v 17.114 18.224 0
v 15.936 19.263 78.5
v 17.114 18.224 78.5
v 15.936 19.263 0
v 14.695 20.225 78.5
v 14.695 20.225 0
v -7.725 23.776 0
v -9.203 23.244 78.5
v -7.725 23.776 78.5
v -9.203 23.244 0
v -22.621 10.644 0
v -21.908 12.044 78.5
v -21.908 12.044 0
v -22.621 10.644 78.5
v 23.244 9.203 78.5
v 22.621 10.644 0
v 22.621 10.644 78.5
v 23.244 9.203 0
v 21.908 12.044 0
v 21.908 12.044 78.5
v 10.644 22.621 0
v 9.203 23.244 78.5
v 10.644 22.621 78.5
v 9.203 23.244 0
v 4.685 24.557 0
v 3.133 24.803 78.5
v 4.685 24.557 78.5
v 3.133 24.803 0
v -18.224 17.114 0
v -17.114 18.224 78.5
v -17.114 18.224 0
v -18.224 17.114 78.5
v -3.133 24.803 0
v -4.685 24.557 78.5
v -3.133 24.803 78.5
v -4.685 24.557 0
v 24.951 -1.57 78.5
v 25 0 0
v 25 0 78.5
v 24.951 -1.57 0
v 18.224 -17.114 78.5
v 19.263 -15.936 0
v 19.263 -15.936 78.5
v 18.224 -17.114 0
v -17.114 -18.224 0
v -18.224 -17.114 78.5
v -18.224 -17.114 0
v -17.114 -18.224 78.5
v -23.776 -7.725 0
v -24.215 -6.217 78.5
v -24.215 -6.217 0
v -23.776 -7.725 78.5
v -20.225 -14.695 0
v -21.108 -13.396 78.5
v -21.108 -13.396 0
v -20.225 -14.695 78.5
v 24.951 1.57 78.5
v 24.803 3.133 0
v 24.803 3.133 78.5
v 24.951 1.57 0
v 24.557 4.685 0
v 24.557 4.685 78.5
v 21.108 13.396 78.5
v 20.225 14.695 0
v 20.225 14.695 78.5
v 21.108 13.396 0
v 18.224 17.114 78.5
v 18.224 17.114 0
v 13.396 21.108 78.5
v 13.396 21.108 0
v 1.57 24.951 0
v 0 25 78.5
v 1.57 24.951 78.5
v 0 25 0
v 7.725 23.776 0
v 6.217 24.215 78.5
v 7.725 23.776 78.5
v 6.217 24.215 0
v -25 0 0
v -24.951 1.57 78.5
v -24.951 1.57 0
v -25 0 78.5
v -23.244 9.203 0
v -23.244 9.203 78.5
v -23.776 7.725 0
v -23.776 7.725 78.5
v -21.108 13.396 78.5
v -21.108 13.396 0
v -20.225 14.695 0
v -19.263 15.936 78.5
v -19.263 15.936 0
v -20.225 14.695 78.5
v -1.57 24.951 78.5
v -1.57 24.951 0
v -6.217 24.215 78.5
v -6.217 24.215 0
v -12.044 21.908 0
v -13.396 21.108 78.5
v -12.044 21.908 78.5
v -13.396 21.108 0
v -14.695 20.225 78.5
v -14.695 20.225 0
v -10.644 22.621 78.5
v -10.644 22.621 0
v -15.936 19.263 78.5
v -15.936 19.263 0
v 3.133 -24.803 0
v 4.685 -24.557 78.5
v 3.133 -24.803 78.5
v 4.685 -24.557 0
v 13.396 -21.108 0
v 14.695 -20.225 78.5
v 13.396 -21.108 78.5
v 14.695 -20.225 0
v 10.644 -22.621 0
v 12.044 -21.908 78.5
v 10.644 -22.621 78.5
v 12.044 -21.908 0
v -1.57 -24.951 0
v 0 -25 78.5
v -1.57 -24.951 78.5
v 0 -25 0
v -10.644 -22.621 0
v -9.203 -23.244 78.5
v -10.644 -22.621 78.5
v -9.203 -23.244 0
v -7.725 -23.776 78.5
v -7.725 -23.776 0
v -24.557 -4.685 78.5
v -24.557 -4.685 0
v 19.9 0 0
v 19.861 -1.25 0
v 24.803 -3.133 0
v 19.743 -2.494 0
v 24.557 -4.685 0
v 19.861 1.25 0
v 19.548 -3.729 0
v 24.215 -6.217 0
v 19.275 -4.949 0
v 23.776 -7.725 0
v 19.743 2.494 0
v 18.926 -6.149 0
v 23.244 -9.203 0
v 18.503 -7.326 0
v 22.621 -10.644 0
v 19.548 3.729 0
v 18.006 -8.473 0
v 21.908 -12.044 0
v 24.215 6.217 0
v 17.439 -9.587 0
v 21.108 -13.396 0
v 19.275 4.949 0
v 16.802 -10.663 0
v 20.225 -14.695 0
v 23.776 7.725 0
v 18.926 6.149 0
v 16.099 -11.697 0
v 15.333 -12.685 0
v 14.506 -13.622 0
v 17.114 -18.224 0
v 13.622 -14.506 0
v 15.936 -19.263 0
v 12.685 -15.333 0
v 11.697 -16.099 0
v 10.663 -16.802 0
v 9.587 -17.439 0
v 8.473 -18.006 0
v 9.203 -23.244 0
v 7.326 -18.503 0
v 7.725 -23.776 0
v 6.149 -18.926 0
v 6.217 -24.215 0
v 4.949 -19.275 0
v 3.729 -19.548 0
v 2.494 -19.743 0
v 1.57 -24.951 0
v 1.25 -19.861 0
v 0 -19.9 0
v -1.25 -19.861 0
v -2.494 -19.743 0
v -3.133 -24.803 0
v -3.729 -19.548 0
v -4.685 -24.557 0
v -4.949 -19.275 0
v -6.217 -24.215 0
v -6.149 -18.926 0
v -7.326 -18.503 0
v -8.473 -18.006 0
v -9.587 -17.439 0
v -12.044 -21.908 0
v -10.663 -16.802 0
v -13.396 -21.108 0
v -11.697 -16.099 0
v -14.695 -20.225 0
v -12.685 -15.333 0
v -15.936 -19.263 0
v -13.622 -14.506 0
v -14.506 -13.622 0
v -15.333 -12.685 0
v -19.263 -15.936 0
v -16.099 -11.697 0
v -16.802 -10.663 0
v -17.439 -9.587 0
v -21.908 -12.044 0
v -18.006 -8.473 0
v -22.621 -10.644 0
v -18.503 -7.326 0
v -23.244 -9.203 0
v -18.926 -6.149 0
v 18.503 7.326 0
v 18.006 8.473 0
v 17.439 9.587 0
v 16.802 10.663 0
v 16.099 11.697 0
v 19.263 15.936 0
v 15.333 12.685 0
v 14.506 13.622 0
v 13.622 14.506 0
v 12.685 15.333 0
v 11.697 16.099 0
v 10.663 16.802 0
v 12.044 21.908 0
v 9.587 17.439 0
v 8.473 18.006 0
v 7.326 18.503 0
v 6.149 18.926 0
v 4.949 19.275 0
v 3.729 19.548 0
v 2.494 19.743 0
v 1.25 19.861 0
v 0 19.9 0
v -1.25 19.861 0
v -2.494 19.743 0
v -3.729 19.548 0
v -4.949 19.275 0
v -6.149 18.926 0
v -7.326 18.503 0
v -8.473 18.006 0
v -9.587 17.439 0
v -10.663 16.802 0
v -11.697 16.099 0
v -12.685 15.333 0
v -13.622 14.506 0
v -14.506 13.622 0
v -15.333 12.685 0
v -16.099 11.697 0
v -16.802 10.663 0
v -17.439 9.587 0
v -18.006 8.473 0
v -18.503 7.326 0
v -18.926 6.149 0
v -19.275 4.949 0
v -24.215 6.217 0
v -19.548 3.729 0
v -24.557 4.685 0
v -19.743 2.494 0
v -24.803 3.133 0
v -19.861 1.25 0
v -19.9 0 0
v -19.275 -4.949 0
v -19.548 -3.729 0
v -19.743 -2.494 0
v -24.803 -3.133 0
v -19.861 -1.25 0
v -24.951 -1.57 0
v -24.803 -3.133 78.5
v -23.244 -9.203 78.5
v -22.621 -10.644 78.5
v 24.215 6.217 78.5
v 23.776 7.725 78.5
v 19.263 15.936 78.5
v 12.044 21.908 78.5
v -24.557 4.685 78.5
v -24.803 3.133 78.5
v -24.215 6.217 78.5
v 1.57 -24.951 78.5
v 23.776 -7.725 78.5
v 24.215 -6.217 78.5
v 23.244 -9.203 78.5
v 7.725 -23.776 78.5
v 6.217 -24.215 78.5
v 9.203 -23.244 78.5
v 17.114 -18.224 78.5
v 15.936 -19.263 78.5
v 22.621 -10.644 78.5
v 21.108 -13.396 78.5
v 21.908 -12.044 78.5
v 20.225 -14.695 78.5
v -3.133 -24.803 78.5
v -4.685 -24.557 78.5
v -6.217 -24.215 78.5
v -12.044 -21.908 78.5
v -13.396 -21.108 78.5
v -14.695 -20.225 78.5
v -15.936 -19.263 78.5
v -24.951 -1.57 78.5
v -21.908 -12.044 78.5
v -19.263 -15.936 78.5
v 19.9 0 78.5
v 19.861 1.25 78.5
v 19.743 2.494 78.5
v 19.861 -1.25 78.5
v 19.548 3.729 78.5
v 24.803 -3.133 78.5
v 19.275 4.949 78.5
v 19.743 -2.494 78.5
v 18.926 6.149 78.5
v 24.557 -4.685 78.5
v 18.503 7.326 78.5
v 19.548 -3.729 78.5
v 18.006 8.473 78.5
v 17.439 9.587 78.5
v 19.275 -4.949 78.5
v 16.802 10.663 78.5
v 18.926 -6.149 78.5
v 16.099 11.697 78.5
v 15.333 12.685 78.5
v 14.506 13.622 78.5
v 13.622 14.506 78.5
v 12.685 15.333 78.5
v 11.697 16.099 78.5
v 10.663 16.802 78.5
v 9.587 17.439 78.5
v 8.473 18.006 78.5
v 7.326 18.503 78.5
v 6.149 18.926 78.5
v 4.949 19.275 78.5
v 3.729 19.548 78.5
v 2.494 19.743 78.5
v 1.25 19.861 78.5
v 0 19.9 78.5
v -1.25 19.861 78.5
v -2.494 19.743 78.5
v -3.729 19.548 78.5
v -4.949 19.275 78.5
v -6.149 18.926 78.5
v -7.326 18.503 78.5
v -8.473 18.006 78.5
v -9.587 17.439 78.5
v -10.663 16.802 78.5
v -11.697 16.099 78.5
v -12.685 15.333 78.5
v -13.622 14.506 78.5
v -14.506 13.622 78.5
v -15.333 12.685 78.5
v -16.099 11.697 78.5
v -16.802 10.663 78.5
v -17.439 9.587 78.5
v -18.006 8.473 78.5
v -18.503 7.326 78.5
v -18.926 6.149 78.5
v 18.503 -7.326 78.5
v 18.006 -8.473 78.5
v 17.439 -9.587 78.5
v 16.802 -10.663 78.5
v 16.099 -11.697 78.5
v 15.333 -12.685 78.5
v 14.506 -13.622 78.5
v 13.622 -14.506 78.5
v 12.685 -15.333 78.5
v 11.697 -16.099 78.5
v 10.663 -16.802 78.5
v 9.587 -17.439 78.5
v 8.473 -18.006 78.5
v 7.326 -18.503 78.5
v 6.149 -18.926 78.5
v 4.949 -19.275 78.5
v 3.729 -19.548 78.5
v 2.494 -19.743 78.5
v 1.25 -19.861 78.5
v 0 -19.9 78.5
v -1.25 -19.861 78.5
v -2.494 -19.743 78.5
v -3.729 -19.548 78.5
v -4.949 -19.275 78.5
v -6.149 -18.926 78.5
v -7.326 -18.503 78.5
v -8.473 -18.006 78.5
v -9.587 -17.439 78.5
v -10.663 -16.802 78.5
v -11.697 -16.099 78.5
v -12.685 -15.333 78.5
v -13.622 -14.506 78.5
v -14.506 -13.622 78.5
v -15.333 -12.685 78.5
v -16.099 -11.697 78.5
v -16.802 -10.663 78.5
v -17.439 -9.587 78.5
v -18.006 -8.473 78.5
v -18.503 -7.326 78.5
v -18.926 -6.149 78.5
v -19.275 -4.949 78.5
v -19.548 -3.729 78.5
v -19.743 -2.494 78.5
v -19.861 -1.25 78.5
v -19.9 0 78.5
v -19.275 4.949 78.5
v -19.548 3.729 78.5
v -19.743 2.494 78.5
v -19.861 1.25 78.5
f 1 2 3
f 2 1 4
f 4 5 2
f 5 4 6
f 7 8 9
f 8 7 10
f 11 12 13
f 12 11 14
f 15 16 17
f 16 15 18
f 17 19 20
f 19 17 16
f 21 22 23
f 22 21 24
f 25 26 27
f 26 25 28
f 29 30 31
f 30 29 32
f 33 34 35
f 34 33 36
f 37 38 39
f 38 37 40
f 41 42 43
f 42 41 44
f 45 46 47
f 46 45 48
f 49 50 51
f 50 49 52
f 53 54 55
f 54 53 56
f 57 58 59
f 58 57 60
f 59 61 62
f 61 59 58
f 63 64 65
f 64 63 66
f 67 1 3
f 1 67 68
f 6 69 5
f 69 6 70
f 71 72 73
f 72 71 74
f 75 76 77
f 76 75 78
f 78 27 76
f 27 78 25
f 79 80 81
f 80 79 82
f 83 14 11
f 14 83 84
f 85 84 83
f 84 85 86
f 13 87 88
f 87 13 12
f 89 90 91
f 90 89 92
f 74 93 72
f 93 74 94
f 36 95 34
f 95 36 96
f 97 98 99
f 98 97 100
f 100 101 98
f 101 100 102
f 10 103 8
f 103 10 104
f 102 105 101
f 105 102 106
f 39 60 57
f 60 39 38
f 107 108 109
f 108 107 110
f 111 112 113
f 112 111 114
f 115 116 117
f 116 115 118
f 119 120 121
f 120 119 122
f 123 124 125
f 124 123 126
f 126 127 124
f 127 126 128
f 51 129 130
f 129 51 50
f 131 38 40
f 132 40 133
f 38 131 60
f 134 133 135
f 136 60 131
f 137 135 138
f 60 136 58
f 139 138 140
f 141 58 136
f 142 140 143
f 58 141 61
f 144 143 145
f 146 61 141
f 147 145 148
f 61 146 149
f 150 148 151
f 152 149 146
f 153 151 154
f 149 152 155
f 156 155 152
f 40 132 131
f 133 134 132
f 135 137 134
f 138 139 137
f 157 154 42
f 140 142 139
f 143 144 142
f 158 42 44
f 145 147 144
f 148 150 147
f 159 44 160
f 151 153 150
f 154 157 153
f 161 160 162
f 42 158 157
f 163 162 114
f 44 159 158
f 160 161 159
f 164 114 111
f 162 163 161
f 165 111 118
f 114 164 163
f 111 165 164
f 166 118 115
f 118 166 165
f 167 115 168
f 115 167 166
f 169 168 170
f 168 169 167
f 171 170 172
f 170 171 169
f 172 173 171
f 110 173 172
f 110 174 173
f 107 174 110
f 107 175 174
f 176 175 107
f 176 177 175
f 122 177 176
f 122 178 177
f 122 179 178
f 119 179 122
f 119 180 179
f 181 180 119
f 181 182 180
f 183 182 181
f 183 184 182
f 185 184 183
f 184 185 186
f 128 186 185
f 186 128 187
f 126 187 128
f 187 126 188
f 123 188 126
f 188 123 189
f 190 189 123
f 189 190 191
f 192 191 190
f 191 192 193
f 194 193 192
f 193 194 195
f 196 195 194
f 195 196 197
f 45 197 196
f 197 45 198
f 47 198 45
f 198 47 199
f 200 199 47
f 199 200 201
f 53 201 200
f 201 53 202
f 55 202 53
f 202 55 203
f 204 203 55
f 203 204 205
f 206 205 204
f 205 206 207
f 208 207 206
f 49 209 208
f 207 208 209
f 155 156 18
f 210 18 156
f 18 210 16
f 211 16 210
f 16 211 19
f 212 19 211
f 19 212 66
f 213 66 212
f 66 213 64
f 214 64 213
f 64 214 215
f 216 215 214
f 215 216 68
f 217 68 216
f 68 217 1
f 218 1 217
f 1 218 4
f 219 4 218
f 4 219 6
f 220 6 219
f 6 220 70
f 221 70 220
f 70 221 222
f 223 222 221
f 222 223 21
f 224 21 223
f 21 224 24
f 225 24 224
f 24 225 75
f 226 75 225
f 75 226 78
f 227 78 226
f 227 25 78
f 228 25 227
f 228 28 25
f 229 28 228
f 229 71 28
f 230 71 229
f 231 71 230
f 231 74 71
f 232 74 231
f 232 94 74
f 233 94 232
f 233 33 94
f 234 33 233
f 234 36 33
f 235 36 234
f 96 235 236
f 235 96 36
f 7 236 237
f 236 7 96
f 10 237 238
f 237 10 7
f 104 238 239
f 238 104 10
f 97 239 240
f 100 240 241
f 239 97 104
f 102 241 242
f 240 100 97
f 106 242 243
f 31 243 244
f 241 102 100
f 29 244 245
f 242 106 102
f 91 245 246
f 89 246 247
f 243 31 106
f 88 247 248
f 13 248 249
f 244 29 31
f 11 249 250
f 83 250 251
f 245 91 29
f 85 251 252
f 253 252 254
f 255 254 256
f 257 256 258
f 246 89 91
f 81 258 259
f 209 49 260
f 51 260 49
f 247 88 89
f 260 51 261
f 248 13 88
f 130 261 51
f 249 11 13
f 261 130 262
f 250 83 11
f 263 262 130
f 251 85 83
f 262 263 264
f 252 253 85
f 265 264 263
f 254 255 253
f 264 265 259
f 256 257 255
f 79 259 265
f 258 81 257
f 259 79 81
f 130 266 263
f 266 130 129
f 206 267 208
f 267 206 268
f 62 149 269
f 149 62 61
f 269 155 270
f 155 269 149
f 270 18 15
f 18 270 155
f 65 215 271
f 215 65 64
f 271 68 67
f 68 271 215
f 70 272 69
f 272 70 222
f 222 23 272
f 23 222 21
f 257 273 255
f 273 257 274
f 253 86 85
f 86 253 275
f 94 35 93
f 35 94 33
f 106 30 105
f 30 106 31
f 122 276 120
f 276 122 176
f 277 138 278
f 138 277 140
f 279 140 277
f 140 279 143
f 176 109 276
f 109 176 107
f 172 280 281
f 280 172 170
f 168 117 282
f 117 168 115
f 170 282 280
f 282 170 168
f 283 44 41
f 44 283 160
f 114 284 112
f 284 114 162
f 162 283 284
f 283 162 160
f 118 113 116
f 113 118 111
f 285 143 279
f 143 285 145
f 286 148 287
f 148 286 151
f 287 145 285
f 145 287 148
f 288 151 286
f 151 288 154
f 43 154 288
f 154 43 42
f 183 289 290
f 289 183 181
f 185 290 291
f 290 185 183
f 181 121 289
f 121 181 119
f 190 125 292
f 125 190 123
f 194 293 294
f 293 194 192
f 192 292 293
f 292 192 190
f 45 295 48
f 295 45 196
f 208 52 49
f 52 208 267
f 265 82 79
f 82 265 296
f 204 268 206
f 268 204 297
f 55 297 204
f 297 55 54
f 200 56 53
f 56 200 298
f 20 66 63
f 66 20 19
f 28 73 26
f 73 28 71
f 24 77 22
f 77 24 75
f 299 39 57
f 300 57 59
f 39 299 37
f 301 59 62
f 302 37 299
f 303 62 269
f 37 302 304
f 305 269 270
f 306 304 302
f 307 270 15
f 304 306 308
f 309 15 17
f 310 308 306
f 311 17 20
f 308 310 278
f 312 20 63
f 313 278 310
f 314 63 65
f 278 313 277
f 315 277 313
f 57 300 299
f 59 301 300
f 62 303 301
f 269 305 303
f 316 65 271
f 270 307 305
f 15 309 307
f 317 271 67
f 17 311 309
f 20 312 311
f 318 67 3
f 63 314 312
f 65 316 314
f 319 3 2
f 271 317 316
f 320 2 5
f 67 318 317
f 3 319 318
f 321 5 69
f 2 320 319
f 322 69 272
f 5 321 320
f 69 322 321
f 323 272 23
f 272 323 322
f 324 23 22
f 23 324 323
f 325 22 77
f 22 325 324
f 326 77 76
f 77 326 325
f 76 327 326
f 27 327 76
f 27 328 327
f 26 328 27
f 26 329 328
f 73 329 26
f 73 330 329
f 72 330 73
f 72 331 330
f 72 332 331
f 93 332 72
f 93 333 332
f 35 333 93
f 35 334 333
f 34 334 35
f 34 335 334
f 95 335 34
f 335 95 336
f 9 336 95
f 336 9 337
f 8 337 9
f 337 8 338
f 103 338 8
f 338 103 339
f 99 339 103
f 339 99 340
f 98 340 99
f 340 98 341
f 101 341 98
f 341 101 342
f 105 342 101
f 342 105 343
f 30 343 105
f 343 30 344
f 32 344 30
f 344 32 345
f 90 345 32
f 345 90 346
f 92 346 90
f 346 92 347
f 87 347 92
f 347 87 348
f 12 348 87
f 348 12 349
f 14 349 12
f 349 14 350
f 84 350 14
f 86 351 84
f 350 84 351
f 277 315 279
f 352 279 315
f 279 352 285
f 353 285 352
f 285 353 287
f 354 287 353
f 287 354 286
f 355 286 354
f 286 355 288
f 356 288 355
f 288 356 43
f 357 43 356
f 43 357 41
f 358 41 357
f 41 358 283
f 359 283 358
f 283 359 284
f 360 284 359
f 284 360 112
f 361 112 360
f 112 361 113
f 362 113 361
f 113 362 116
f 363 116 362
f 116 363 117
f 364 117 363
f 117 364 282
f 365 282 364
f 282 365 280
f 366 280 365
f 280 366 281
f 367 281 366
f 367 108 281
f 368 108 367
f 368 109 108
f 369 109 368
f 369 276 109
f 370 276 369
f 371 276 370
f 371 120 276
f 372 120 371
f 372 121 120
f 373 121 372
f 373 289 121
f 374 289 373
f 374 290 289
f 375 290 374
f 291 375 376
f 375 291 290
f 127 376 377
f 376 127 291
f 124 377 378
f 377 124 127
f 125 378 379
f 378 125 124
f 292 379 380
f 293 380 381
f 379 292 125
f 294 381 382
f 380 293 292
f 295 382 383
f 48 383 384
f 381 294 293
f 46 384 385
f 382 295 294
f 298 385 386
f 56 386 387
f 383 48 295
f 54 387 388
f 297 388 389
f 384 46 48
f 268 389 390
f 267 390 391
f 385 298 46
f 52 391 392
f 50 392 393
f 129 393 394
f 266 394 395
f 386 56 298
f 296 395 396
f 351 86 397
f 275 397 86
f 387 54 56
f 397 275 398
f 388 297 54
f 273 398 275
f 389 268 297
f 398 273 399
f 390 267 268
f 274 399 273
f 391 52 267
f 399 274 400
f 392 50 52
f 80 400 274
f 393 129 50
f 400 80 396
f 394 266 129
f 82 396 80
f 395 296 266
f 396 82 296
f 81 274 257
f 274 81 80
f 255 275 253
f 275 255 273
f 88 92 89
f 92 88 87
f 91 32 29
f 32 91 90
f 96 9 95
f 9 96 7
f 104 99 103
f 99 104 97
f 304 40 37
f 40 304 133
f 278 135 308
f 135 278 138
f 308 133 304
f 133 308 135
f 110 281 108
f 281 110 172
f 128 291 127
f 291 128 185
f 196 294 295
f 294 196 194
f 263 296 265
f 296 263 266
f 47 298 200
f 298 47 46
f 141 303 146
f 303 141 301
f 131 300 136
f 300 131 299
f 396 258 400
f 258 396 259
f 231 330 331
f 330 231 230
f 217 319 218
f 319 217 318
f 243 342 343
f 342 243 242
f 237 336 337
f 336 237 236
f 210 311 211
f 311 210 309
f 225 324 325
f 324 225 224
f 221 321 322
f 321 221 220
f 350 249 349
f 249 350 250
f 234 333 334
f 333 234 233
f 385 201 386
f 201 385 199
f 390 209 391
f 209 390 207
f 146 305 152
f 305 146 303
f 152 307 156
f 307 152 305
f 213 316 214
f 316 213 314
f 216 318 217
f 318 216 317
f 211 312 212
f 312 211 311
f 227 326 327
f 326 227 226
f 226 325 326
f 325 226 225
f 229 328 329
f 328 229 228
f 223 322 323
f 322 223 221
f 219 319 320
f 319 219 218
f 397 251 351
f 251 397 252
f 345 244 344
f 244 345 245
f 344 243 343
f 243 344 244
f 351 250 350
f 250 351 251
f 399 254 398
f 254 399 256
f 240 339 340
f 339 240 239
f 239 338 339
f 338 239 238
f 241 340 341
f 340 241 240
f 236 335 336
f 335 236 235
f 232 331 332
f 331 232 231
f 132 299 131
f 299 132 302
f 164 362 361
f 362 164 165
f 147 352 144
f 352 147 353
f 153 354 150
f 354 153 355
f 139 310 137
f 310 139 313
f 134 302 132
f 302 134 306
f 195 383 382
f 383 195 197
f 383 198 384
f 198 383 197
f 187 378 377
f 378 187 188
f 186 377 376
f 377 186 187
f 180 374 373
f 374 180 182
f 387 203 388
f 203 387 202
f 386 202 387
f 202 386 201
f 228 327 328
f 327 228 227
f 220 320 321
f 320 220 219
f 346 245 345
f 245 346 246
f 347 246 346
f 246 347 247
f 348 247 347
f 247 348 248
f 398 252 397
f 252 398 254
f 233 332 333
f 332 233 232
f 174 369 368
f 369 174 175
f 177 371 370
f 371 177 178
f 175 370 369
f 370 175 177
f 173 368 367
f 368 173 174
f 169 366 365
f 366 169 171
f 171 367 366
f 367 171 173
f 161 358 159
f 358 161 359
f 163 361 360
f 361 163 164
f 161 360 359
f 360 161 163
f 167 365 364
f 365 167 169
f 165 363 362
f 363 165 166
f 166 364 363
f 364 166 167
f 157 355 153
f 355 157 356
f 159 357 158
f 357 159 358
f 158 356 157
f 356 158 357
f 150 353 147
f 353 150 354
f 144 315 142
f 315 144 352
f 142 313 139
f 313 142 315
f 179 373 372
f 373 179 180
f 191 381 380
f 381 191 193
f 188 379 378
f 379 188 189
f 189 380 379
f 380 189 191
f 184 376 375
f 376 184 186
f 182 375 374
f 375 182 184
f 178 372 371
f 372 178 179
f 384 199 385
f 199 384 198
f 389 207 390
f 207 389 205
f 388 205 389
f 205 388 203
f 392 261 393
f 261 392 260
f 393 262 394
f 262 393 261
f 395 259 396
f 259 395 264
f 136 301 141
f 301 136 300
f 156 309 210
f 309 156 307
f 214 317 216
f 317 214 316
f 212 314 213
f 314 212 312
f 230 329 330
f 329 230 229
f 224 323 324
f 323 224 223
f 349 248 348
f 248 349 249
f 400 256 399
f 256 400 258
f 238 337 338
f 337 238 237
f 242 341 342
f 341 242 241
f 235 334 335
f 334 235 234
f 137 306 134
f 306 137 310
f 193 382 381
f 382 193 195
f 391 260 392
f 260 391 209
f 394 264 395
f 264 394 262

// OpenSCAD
$fn=100;

difference(){
    cylinder(78.5,50/2,50/2);
    cylinder(78.5,39.8/2,39.8/2);
}
